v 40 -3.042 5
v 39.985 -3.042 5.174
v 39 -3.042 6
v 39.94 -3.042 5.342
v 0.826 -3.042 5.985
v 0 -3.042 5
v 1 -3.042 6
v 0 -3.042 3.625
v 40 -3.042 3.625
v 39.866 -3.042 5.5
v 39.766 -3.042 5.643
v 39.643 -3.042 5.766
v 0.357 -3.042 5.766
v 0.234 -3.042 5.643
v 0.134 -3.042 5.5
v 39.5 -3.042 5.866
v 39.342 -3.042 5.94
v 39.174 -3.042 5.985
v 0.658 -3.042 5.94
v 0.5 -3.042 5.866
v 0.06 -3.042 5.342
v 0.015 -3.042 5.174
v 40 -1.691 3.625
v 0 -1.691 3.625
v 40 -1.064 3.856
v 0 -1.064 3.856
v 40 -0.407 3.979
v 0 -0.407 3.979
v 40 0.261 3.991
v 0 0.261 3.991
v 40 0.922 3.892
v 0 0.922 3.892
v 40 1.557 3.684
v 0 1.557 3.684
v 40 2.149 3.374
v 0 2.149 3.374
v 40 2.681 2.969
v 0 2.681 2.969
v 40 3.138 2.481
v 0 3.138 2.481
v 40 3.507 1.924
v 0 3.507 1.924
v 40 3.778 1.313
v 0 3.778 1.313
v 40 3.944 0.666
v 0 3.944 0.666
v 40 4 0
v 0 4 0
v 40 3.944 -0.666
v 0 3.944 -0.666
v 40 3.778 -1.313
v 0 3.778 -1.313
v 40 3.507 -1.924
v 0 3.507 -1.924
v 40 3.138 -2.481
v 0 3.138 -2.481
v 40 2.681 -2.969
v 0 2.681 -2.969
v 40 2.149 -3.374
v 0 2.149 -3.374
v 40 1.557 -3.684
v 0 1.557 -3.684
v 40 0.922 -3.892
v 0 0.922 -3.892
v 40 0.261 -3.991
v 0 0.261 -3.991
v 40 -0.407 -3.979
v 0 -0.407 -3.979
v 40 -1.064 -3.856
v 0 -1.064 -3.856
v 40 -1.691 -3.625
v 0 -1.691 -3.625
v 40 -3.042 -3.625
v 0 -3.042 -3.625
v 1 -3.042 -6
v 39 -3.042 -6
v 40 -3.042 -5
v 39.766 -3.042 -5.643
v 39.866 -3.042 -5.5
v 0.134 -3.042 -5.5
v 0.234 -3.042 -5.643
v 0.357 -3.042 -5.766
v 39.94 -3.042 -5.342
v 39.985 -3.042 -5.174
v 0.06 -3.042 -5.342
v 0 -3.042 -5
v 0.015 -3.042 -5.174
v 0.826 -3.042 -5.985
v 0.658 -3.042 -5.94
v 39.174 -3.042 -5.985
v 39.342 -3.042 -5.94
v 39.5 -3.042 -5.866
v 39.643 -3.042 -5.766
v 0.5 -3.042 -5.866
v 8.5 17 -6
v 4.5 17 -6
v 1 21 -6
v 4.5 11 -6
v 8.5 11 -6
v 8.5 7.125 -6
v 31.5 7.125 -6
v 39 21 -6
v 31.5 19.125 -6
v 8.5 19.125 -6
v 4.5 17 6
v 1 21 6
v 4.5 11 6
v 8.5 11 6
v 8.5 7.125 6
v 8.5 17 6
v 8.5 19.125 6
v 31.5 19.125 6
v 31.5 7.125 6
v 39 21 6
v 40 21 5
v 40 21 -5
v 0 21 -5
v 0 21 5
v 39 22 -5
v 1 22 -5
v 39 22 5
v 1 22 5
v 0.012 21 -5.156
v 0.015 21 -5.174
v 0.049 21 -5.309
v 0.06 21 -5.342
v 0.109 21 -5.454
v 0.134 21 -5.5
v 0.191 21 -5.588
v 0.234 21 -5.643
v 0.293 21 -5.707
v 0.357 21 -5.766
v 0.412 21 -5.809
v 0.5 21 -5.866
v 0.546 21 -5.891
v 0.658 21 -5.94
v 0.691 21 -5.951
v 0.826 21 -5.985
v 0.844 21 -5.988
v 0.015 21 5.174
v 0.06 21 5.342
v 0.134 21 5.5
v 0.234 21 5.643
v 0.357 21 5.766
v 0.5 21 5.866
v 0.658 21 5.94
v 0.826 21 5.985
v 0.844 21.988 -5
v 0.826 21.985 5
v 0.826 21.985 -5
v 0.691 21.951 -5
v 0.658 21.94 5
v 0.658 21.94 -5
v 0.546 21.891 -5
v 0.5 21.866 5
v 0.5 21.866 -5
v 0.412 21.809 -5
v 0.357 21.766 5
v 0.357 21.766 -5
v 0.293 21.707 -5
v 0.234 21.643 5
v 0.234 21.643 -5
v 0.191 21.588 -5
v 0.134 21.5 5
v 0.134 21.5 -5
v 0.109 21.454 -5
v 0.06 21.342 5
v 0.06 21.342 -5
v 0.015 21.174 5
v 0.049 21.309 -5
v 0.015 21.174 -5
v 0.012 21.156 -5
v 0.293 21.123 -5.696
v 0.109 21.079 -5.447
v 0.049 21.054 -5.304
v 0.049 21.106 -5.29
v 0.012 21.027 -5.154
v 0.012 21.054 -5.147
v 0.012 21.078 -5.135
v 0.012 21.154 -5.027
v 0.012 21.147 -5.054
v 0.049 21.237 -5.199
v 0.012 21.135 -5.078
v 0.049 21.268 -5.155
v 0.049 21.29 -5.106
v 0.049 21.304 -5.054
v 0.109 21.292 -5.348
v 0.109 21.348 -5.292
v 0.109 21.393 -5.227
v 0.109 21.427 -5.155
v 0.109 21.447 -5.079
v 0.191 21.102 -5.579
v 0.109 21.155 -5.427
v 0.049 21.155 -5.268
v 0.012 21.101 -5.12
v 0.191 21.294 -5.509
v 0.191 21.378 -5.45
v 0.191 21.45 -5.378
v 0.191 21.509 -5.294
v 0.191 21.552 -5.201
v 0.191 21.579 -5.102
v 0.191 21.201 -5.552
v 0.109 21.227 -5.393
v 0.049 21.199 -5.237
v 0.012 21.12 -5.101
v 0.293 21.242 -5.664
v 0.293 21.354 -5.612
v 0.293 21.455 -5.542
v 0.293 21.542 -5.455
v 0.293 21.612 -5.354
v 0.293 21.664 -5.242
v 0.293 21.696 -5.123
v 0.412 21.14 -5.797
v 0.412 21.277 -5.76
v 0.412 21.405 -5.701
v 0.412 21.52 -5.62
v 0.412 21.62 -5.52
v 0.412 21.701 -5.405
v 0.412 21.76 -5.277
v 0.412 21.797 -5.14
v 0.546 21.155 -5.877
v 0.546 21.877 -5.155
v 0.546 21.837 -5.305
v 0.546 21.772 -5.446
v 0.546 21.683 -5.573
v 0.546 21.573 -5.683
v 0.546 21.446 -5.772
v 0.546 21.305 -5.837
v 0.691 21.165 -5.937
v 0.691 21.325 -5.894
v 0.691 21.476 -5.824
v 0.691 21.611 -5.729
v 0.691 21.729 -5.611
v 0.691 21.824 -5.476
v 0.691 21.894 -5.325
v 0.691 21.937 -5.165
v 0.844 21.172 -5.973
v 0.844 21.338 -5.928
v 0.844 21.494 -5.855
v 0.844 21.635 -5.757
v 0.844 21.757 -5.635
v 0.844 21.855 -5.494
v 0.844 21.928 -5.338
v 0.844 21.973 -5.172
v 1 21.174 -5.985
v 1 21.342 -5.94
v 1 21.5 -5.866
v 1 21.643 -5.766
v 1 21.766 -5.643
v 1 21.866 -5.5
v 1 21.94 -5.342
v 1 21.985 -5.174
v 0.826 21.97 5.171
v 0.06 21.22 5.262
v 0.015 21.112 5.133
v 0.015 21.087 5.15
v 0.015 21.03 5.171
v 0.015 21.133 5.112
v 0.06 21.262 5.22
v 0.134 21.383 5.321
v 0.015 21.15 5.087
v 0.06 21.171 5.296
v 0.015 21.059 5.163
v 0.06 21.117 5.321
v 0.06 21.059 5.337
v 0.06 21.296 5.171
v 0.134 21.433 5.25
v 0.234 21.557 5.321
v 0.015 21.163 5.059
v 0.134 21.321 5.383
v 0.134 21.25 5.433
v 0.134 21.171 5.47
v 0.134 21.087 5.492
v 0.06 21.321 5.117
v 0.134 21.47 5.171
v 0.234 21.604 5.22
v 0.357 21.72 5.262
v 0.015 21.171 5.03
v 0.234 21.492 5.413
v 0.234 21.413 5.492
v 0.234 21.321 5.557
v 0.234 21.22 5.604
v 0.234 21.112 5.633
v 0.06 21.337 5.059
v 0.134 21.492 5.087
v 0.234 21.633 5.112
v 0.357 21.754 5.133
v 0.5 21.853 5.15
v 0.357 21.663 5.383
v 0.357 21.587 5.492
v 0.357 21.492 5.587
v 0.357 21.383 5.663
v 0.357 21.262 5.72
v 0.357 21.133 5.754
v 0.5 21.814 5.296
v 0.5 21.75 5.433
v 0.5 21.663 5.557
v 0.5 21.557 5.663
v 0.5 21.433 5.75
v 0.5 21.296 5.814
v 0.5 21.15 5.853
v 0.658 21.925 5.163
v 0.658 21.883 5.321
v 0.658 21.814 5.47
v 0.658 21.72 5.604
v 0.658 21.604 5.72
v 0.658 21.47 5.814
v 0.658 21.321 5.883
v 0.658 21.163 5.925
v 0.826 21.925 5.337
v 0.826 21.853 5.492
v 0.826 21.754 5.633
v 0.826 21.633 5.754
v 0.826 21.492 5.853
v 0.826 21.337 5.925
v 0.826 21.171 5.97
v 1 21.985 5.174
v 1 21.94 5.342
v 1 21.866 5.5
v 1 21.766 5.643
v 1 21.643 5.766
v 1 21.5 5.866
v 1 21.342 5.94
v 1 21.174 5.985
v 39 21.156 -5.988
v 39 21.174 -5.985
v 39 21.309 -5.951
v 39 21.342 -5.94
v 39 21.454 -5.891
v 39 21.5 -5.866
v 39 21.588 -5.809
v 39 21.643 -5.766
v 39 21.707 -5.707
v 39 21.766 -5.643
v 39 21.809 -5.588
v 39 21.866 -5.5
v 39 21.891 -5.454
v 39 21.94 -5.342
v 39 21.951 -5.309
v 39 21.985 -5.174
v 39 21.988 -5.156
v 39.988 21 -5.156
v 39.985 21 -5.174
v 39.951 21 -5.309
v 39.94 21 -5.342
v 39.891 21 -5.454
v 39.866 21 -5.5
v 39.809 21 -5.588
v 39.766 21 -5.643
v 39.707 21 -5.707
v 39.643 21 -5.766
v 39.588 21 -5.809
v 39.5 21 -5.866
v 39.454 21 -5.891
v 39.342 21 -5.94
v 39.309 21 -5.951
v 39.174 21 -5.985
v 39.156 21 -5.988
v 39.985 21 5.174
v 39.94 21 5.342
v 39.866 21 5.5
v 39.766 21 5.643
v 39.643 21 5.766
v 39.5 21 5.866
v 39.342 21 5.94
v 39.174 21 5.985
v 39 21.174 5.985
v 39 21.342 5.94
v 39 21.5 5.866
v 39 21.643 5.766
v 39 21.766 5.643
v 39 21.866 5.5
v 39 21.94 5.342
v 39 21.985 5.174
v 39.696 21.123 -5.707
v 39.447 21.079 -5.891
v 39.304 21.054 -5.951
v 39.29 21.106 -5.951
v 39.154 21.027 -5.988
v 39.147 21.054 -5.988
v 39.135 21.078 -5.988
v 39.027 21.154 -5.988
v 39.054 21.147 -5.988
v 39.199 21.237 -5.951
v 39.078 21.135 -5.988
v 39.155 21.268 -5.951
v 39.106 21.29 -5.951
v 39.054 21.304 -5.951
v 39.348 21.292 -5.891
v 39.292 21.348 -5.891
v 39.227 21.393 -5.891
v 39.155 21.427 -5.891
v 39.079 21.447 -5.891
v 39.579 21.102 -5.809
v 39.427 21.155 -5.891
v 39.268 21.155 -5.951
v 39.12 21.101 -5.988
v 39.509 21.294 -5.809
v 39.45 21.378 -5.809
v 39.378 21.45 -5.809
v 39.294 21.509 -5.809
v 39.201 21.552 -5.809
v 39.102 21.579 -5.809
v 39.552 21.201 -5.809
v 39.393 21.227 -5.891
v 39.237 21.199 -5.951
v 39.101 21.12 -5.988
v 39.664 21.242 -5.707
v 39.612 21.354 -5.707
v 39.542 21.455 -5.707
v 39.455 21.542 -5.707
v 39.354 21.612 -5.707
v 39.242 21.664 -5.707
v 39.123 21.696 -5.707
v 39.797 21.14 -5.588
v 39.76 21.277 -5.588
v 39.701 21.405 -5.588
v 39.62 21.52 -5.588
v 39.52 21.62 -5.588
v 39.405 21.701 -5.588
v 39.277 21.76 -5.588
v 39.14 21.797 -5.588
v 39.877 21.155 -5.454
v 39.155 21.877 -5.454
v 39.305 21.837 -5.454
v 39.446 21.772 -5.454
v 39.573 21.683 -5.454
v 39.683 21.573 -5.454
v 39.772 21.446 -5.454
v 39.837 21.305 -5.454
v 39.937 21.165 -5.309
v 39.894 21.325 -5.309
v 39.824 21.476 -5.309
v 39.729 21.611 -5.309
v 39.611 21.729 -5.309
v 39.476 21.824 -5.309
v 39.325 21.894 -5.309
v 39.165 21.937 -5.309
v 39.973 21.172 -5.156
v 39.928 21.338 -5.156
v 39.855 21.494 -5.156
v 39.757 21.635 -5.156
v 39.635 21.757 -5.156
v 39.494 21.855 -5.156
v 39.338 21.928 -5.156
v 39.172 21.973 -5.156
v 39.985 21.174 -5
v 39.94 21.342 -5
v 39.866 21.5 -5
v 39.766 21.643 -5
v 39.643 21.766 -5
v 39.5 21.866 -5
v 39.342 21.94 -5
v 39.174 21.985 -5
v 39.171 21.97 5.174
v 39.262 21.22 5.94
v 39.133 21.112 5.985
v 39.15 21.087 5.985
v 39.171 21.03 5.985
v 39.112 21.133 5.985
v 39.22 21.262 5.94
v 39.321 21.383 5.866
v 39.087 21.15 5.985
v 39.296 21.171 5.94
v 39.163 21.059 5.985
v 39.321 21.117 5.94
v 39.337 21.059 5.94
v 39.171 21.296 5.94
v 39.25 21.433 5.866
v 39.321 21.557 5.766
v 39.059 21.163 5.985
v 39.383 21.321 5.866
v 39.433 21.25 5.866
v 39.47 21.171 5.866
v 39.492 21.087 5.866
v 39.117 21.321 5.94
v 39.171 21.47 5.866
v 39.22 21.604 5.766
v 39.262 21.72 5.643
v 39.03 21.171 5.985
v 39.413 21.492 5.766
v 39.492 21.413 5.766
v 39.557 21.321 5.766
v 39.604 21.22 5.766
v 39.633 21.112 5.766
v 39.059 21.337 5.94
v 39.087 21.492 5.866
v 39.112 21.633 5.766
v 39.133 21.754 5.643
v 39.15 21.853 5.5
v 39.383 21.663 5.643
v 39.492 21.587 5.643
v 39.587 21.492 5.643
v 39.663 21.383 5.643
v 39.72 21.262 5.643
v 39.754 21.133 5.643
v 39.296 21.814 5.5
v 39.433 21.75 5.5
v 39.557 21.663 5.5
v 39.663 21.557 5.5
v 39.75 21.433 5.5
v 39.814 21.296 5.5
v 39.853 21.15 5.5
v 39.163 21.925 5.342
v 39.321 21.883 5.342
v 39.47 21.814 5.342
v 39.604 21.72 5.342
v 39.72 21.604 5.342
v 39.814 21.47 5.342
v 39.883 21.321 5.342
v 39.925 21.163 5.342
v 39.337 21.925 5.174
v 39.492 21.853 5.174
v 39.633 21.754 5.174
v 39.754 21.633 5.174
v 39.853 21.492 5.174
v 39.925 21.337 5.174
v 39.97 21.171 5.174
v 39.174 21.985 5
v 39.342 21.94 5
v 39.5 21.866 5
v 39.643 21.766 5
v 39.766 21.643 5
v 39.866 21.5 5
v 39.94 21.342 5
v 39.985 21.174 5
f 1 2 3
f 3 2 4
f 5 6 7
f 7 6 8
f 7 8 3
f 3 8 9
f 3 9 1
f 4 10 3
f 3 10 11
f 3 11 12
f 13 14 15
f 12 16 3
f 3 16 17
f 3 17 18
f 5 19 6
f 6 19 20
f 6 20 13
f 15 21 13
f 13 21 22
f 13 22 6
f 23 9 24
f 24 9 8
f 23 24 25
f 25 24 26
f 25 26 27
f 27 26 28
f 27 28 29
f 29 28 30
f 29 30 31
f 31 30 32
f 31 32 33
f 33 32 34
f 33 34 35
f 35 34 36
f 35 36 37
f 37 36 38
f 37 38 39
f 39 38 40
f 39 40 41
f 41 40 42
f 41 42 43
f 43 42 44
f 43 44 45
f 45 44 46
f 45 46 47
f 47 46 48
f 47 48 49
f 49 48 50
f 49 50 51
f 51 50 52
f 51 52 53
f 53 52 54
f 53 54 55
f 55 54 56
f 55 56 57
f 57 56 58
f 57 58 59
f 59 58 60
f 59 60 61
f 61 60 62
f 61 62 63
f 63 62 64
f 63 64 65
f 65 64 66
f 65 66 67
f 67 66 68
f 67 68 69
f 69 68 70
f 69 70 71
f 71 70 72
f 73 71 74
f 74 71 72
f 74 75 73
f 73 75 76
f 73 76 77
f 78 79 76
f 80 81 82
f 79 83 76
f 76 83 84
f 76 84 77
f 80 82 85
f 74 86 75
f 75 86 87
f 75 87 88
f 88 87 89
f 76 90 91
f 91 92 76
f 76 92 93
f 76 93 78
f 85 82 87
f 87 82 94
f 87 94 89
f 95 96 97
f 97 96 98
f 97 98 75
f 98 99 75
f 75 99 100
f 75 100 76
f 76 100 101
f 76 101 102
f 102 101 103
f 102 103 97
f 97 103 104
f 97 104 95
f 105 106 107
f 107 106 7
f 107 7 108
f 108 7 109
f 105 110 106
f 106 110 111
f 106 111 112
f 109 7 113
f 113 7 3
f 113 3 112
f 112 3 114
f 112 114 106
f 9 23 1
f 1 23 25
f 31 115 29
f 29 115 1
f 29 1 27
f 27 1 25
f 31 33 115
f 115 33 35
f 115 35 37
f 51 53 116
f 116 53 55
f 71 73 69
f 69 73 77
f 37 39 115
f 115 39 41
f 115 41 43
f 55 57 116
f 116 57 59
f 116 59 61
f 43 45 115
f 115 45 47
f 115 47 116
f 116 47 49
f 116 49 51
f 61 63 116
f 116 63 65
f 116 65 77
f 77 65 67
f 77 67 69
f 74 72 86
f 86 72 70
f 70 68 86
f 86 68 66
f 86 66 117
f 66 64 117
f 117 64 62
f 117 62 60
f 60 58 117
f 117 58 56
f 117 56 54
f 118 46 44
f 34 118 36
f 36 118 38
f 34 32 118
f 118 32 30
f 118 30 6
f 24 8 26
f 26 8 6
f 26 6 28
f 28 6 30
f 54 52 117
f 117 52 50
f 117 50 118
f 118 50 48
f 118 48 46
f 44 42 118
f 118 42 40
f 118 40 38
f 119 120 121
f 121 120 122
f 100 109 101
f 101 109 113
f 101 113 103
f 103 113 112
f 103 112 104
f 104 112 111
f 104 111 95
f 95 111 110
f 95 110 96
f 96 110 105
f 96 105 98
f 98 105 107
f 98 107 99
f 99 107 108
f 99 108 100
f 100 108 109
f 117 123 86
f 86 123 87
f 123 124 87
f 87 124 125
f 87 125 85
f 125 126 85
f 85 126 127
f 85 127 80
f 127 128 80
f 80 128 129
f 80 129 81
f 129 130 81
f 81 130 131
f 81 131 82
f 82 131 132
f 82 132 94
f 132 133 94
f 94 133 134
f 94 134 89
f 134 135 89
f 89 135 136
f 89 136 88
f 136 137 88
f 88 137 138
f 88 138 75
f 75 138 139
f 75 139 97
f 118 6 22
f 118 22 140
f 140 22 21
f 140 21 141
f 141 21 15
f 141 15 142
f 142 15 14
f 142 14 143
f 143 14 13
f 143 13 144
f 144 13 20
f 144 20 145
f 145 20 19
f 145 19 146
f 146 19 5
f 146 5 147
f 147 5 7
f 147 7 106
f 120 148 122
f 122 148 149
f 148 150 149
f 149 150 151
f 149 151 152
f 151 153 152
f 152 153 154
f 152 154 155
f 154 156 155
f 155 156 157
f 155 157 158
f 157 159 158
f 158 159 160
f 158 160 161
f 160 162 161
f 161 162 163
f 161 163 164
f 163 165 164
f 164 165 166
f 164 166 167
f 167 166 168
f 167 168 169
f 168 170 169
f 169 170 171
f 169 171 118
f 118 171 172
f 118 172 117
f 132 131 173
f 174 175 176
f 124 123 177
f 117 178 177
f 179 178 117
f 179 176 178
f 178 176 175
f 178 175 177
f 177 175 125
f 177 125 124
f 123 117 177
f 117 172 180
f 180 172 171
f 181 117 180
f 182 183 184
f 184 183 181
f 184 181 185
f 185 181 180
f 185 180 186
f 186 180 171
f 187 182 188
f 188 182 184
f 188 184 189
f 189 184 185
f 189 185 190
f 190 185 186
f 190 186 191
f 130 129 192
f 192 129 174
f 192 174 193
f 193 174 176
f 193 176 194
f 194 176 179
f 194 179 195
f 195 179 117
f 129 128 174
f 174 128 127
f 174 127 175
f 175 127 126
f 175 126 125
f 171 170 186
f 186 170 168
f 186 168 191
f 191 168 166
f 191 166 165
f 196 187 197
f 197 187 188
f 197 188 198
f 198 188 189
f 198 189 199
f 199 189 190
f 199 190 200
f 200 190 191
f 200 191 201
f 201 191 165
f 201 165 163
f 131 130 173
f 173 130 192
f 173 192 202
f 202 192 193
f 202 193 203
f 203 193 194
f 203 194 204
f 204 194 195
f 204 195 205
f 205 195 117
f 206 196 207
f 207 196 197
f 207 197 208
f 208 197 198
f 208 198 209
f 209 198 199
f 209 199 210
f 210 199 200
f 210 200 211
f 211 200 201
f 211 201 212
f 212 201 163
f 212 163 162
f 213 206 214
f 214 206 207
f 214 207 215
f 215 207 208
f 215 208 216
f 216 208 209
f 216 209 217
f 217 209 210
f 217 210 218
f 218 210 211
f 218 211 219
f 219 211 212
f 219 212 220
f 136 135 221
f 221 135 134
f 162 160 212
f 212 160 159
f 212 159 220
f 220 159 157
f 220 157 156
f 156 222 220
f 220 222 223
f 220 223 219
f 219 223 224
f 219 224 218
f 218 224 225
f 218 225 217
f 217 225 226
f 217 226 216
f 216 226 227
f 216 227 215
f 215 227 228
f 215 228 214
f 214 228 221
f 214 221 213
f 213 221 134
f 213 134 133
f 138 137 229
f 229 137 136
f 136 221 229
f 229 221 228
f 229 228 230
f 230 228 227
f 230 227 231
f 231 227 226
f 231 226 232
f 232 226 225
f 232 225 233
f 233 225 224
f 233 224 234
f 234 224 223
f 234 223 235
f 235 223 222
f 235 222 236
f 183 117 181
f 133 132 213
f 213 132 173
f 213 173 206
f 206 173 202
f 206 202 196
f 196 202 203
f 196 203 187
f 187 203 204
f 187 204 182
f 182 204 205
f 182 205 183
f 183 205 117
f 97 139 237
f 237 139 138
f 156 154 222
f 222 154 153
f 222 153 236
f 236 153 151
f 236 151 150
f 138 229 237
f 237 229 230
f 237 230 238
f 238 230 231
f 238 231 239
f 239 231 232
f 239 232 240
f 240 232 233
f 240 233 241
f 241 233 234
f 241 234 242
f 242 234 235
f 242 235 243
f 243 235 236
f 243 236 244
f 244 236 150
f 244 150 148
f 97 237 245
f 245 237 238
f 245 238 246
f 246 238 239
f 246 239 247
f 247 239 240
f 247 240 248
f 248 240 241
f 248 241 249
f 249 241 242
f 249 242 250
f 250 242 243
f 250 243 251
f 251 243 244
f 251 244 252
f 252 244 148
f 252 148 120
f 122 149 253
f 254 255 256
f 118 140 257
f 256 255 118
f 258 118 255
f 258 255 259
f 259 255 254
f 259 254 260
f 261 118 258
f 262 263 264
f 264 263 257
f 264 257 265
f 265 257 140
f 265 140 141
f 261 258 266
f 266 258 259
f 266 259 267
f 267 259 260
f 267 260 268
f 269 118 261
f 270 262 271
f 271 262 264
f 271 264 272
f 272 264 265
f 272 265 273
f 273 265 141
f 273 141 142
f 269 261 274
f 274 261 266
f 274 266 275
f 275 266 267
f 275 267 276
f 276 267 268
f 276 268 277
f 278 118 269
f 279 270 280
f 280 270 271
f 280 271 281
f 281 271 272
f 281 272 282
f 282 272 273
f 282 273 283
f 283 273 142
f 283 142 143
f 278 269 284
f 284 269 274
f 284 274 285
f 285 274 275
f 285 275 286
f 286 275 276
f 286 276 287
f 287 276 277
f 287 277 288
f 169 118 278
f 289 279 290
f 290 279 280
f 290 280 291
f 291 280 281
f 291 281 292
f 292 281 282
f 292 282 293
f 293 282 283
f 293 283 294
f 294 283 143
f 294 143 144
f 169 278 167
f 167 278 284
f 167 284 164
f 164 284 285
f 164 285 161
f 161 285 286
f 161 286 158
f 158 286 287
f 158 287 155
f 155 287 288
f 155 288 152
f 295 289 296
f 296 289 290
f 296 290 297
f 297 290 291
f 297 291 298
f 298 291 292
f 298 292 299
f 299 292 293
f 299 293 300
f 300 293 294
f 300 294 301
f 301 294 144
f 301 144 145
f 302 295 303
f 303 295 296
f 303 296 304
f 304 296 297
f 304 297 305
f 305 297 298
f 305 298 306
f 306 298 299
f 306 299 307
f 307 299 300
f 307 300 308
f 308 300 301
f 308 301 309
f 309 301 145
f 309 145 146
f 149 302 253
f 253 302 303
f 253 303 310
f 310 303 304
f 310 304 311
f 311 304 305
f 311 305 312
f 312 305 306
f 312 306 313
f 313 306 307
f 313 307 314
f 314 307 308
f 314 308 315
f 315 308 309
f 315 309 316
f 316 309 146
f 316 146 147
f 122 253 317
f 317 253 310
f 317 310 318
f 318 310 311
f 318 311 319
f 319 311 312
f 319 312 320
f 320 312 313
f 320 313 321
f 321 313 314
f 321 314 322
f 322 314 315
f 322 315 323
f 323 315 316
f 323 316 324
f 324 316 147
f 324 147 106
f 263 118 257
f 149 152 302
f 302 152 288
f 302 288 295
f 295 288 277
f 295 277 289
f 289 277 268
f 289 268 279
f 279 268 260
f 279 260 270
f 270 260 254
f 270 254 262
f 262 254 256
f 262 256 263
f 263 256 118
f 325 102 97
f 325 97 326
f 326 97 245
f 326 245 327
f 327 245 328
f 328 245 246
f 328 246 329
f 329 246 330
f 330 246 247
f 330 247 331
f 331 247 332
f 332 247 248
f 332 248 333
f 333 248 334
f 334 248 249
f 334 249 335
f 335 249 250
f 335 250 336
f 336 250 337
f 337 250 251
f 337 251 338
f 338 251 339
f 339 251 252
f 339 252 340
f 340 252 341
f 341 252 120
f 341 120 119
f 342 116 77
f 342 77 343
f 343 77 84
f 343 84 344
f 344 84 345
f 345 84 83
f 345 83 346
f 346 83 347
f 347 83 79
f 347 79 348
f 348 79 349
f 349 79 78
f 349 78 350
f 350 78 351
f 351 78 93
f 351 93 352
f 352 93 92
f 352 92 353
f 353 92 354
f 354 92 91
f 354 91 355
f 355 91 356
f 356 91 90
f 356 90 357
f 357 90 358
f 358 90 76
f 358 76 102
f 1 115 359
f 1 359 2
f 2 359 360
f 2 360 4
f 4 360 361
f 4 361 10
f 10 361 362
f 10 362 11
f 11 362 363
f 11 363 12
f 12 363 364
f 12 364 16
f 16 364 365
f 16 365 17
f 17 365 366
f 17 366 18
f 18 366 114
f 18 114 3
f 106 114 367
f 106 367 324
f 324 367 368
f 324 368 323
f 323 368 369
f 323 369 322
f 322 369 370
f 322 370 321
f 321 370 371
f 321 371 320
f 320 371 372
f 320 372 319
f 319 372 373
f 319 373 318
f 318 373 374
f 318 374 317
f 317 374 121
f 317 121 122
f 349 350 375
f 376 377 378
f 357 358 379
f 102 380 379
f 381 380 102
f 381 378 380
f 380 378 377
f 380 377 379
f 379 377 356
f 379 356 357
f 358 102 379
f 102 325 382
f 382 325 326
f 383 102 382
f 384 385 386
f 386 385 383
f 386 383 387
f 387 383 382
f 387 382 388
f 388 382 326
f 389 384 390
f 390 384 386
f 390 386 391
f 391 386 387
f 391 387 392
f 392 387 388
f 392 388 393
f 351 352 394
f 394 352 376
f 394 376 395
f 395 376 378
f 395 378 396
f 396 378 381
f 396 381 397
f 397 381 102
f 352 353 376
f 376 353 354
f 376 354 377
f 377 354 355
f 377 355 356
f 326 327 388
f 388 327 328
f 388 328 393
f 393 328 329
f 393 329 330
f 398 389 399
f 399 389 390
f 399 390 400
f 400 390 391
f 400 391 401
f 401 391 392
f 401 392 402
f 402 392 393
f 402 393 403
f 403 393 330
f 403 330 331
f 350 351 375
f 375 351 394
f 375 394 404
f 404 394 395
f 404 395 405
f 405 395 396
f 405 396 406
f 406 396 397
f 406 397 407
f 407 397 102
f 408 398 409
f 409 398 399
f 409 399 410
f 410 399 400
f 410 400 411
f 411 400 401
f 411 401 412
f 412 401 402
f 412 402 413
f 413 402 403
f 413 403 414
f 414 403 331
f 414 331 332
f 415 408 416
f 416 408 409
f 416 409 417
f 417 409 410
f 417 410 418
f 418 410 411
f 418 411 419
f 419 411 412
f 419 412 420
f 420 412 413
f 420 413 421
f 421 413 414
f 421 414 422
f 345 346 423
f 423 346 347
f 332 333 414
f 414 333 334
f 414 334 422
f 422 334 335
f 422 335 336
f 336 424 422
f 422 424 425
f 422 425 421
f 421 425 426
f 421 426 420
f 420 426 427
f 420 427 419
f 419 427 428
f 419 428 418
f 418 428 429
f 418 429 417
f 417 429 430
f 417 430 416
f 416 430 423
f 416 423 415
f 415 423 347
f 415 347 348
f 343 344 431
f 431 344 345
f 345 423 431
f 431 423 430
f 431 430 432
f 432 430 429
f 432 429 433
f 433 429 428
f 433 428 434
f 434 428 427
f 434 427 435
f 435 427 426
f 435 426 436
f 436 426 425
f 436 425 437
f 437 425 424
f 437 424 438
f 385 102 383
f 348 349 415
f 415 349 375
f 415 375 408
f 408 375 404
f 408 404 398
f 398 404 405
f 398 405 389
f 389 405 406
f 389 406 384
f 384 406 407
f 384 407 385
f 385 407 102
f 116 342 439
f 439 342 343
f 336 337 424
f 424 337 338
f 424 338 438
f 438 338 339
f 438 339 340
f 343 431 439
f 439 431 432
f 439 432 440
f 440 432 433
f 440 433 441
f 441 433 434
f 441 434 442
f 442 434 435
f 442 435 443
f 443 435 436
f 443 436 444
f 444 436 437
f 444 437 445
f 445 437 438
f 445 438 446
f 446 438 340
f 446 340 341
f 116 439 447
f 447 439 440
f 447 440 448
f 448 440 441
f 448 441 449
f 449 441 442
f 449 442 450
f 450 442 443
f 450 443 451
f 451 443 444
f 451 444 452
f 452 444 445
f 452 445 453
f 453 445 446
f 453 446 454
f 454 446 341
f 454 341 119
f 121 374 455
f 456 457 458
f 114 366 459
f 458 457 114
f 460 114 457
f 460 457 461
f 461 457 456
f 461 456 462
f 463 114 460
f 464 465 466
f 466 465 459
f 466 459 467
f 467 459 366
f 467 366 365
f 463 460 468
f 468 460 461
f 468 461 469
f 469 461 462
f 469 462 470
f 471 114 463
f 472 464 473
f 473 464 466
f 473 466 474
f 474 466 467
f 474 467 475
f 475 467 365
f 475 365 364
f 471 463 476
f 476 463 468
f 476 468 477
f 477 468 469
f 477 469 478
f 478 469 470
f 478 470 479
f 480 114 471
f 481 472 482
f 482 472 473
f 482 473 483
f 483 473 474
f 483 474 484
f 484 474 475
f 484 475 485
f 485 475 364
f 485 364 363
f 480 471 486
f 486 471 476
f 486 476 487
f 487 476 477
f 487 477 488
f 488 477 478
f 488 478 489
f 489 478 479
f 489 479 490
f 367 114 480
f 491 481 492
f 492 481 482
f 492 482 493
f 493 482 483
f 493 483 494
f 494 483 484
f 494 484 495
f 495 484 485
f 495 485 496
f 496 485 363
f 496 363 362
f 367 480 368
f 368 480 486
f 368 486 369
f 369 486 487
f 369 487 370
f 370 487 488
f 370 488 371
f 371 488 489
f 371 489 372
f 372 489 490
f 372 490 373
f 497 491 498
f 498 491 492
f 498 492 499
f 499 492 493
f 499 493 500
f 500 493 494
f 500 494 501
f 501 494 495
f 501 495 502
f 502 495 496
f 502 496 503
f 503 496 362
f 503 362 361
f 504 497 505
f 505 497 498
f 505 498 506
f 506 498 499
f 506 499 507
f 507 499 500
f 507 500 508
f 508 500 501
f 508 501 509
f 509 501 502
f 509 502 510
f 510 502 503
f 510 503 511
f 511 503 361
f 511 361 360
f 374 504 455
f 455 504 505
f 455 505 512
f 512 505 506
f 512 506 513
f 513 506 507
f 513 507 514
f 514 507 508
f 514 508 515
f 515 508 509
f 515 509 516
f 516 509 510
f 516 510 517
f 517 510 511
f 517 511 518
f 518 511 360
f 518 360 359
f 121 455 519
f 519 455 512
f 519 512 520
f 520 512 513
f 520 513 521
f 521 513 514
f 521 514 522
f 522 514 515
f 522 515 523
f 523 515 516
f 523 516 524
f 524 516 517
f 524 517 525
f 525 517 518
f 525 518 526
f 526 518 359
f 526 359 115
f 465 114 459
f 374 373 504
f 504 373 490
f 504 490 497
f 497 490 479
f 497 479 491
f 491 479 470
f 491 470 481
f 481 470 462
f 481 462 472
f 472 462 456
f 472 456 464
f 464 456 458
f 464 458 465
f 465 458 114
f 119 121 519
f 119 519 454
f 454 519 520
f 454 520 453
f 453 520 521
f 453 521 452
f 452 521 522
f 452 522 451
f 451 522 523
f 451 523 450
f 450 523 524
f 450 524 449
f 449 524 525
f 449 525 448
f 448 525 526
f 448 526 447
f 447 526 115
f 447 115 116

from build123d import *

# Parameters (mm, degrees)
BOSS_EXTRUDE1_DEPTH = 40
SKETCH2_W           = 40
SKETCH2_H           = 16
BOSS_EXTRUDE2_DEPTH = 12
FILLET1_R           = 1


with BuildPart() as part:
    # Sketch1 → Boss-Extrude1 (new body)
    with BuildSketch(Plane(origin=(0, 0, 0), x_dir=(0, 0, -1), z_dir=(1, 0, 0))):
        with BuildLine():
            Line((-3.625, -1.690968657), (-3.625, -3.041889066))
            Line((-3.625, -3.041889066), (-6, -3.041889066))
            Line((-6, -3.041889066), (-6, 6))
            Line((-6, 6), (6, 6))
            Line((6, 6), (6, -3.041889066))
            Line((6, -3.041889066), (3.625, -3.041889066))
            Line((3.625, -3.041889066), (3.625, -1.690968657))
            ThreePointArc((3.625, -1.690968657), (0, 4), (-3.625, -1.690968657))
        make_face()
    extrude(amount=BOSS_EXTRUDE1_DEPTH)

    # Sketch2 → Boss-Extrude2 (add)
    with BuildSketch(Plane.XY.offset(6)):
        with Locations((20, 14)):
            Rectangle(SKETCH2_W, SKETCH2_H)
        Polygon((8.5, 17), (8.5, 19.125), (31.5, 19.125), (31.5, 7.125), (8.5, 7.125), (8.5, 11), (4.5, 11), (4.5, 17), align=None, mode=Mode.SUBTRACT)
    extrude(amount=-BOSS_EXTRUDE2_DEPTH)

    # Fillet1
    fillet1_edges = [part.edges().sort_by_distance(p)[0] for p in [
        (40, 9.479055467, -6),
        (40, 22, 0),
        (0, 22, 0),
        (20, 22, 6),
        (20, 22, -6),
        (40, 9.479055467, 6),
        (0, 9.479055467, 6),
        (0, 9.479055467, -6),
    ]]
    fillet(fillet1_edges, radius=FILLET1_R)


solid = part.part
